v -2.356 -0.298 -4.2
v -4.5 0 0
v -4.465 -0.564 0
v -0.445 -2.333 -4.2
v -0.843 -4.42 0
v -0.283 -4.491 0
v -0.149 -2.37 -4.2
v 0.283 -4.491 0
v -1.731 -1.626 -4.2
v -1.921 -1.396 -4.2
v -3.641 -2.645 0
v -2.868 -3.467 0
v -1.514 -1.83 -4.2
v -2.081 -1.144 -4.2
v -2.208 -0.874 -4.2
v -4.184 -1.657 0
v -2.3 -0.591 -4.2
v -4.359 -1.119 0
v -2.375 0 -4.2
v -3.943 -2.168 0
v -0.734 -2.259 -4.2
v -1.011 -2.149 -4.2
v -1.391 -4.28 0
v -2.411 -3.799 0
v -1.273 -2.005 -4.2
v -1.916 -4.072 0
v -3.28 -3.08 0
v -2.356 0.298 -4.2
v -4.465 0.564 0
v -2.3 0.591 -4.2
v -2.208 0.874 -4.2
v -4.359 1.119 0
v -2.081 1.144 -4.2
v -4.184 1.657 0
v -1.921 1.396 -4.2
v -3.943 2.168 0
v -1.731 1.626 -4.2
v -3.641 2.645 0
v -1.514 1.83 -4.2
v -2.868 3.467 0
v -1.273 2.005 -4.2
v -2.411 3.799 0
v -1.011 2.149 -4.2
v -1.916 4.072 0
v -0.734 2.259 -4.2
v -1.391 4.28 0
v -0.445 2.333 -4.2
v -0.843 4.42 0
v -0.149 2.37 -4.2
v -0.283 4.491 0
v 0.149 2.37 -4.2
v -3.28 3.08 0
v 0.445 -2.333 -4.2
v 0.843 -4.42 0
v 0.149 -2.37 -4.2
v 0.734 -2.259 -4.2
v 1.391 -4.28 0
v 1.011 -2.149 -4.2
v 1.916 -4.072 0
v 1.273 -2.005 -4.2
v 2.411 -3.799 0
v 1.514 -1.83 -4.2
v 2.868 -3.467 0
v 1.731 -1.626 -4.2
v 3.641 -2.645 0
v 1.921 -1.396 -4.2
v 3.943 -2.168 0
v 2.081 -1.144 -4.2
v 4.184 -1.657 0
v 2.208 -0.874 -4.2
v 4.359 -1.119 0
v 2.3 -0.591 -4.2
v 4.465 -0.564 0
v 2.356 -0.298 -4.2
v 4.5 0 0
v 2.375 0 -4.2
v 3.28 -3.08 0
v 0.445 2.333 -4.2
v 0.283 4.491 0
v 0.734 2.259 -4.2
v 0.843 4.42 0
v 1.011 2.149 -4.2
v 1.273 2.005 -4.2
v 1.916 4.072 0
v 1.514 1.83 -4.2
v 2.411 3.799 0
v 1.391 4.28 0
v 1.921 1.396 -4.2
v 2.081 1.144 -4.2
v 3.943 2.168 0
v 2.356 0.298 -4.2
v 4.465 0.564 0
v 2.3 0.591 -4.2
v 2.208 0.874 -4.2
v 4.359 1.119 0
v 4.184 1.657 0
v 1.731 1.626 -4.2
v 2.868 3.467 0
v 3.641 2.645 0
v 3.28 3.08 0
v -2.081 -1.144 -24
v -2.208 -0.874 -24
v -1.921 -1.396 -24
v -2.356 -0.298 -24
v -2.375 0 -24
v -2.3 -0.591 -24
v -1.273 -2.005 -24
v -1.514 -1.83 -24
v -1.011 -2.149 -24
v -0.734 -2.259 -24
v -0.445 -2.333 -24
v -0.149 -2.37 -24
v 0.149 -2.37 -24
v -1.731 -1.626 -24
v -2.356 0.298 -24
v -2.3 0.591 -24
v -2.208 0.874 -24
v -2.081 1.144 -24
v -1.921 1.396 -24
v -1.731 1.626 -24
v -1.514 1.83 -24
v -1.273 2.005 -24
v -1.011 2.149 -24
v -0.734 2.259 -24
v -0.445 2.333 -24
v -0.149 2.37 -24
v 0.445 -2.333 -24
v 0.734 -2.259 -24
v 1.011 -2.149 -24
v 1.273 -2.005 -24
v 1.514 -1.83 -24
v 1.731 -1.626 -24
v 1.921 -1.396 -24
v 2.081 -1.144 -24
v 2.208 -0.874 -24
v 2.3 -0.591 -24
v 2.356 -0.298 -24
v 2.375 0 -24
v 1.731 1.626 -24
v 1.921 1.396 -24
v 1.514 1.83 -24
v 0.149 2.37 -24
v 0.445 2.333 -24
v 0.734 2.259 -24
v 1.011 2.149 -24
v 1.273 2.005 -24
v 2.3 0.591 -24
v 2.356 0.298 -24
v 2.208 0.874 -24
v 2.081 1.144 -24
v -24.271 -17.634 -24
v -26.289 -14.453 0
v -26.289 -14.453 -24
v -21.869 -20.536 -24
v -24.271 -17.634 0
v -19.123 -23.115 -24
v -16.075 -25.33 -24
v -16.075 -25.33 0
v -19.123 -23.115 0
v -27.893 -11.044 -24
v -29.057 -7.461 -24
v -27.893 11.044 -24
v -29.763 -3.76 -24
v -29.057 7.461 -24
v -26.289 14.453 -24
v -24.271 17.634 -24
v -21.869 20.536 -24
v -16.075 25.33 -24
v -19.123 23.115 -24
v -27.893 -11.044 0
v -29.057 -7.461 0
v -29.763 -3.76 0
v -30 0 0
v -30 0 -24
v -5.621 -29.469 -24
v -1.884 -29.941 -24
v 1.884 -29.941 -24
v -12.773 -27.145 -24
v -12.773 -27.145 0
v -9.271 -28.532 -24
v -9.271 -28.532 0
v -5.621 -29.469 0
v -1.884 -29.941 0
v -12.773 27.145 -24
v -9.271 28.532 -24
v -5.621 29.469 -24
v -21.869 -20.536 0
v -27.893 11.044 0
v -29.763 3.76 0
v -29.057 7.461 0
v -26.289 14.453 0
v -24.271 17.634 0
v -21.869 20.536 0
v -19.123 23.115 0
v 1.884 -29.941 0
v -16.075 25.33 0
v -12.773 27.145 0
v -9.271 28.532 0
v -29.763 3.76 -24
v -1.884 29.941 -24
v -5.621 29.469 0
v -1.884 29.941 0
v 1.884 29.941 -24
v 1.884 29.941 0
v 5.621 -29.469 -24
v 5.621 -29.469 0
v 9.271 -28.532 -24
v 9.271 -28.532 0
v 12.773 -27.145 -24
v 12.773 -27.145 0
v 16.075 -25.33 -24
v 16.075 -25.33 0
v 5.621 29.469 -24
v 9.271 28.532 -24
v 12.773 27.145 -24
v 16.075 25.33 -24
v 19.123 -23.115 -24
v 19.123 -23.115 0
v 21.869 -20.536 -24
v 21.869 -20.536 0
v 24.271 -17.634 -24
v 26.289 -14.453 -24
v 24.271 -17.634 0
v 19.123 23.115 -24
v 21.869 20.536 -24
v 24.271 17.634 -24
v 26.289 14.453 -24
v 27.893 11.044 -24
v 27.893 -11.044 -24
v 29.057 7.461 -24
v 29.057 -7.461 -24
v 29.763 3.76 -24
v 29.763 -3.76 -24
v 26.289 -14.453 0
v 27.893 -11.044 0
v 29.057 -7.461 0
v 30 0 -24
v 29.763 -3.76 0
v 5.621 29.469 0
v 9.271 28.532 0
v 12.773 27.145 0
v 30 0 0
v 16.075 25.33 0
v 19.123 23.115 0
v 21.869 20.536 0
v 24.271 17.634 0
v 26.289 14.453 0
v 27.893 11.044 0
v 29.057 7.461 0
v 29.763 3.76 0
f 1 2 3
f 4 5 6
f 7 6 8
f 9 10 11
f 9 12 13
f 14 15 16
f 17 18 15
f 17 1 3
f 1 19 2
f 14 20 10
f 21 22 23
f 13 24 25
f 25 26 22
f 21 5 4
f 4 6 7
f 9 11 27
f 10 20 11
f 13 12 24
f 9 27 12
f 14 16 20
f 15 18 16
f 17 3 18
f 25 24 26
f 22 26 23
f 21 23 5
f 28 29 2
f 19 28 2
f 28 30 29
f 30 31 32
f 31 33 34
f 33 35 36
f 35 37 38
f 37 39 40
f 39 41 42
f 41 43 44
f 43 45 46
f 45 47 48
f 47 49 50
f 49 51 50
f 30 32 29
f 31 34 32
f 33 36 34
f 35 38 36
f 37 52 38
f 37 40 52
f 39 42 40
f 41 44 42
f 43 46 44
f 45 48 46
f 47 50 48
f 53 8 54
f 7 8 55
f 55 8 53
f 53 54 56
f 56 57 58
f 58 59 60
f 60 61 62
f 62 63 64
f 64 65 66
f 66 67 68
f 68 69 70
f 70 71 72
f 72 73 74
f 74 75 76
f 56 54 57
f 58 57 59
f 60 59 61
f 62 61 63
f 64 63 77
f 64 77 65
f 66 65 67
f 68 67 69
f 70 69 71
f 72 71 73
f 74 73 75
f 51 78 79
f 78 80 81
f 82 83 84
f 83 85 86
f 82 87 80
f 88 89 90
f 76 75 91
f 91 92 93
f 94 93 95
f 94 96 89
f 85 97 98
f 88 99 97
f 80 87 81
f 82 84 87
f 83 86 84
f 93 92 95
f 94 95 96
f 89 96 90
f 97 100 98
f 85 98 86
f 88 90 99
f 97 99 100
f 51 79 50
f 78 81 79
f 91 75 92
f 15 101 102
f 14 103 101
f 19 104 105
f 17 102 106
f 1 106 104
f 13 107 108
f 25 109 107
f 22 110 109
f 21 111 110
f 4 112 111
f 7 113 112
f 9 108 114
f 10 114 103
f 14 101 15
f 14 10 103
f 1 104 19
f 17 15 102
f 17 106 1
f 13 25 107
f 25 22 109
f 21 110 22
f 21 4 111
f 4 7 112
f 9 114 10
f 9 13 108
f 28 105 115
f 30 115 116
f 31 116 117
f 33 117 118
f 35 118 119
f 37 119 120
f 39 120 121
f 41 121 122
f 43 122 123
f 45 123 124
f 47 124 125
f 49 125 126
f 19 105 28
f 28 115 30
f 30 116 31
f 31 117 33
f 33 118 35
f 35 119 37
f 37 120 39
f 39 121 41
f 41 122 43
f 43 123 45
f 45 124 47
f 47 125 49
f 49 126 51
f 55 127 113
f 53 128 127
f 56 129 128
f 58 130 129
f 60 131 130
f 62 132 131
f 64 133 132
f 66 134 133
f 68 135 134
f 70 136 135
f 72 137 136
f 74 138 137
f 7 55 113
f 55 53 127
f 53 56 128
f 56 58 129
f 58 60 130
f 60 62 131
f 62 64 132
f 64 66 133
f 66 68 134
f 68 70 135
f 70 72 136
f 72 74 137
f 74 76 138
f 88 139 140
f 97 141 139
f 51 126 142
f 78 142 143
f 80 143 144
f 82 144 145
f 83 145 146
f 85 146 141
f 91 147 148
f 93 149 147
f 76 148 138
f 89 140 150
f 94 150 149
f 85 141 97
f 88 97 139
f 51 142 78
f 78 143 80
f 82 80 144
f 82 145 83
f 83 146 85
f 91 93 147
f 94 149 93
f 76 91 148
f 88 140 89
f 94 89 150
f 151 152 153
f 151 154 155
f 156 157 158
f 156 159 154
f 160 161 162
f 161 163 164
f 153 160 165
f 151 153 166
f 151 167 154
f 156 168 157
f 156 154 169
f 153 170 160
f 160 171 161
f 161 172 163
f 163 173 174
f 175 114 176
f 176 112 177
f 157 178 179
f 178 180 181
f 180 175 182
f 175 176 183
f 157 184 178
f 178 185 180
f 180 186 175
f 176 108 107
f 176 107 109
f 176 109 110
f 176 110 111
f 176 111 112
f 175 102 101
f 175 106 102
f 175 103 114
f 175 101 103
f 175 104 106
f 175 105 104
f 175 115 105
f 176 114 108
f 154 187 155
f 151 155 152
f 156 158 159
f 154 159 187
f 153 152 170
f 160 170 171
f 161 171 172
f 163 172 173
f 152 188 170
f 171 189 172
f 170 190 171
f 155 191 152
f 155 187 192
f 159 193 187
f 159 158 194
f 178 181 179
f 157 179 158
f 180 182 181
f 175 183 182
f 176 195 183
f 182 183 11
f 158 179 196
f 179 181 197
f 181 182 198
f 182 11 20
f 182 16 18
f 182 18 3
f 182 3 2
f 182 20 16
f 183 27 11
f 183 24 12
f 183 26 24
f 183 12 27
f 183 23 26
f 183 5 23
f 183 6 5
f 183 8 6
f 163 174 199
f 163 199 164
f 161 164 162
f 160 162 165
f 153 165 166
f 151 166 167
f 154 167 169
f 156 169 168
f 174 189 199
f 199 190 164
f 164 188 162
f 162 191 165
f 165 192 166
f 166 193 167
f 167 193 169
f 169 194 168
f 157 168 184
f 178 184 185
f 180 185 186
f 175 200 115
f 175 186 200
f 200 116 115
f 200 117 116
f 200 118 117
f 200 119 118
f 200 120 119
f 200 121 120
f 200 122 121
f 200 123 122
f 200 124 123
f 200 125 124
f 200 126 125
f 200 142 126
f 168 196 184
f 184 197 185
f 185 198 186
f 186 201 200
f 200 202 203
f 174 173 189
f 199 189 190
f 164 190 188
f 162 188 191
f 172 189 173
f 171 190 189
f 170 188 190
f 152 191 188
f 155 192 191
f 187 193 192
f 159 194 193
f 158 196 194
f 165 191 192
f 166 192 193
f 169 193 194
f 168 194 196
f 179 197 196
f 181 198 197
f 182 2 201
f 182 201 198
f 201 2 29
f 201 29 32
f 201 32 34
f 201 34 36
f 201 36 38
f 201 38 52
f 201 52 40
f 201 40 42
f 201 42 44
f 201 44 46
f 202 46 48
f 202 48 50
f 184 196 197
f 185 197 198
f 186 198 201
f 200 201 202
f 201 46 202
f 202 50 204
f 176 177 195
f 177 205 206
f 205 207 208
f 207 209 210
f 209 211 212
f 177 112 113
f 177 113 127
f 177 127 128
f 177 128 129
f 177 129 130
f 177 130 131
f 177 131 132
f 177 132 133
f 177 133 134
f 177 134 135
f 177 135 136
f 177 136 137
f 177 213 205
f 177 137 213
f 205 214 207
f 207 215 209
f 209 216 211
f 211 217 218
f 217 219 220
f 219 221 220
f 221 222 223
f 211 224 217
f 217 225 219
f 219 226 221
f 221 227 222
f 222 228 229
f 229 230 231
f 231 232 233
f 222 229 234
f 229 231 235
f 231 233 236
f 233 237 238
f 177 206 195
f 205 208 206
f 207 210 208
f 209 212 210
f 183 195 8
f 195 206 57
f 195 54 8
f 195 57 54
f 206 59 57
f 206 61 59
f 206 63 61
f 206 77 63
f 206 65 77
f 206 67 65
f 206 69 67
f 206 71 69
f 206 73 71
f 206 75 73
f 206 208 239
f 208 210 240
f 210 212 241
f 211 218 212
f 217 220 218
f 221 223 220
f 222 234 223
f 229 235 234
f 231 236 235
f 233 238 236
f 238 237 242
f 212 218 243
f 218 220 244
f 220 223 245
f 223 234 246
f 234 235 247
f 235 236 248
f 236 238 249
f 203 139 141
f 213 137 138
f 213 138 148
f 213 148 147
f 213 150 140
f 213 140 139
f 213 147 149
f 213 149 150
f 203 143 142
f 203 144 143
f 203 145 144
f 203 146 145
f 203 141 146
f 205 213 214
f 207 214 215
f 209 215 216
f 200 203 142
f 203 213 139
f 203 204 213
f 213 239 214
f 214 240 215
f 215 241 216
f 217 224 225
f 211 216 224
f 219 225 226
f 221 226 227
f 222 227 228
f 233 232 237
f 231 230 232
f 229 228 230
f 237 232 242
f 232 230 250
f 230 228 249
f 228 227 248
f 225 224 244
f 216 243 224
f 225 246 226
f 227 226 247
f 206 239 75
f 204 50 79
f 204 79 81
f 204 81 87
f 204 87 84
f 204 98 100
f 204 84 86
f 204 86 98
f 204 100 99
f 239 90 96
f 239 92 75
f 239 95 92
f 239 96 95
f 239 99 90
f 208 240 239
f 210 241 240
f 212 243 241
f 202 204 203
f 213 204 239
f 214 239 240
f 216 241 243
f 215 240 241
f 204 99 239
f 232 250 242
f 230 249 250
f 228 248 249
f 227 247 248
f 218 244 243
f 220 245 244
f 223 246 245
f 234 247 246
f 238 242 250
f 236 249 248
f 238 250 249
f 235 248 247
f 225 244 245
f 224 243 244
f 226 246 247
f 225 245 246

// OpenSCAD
$fn = 50;


difference() {
	union() {
		translate(v = [0, 0, -24.0000000000]) {
			cylinder(h = 24, r = 30.0000000000);
		}
	}
	union() {
		translate(v = [0, 0, 0]) {
			rotate(a = [0, 0, 0]) {
				difference() {
					union() {
						translate(v = [0, 0, -27.0000000000]) {
							cylinder(h = 27, r = 2.2500000000);
						}
						translate(v = [0, 0, -4.2000000000]) {
							cylinder(h = 4.2000000000, r1 = 2.3750000000, r2 = 4.5000000000);
						}
						translate(v = [0, 0, -27.0000000000]) {
							cylinder(h = 27, r = 2.3750000000);
						}
						translate(v = [0, 0, -27.0000000000]) {
							cylinder(h = 27, r = 2.2500000000);
						}
					}
					union();
				}
			}
		}
	}
}
